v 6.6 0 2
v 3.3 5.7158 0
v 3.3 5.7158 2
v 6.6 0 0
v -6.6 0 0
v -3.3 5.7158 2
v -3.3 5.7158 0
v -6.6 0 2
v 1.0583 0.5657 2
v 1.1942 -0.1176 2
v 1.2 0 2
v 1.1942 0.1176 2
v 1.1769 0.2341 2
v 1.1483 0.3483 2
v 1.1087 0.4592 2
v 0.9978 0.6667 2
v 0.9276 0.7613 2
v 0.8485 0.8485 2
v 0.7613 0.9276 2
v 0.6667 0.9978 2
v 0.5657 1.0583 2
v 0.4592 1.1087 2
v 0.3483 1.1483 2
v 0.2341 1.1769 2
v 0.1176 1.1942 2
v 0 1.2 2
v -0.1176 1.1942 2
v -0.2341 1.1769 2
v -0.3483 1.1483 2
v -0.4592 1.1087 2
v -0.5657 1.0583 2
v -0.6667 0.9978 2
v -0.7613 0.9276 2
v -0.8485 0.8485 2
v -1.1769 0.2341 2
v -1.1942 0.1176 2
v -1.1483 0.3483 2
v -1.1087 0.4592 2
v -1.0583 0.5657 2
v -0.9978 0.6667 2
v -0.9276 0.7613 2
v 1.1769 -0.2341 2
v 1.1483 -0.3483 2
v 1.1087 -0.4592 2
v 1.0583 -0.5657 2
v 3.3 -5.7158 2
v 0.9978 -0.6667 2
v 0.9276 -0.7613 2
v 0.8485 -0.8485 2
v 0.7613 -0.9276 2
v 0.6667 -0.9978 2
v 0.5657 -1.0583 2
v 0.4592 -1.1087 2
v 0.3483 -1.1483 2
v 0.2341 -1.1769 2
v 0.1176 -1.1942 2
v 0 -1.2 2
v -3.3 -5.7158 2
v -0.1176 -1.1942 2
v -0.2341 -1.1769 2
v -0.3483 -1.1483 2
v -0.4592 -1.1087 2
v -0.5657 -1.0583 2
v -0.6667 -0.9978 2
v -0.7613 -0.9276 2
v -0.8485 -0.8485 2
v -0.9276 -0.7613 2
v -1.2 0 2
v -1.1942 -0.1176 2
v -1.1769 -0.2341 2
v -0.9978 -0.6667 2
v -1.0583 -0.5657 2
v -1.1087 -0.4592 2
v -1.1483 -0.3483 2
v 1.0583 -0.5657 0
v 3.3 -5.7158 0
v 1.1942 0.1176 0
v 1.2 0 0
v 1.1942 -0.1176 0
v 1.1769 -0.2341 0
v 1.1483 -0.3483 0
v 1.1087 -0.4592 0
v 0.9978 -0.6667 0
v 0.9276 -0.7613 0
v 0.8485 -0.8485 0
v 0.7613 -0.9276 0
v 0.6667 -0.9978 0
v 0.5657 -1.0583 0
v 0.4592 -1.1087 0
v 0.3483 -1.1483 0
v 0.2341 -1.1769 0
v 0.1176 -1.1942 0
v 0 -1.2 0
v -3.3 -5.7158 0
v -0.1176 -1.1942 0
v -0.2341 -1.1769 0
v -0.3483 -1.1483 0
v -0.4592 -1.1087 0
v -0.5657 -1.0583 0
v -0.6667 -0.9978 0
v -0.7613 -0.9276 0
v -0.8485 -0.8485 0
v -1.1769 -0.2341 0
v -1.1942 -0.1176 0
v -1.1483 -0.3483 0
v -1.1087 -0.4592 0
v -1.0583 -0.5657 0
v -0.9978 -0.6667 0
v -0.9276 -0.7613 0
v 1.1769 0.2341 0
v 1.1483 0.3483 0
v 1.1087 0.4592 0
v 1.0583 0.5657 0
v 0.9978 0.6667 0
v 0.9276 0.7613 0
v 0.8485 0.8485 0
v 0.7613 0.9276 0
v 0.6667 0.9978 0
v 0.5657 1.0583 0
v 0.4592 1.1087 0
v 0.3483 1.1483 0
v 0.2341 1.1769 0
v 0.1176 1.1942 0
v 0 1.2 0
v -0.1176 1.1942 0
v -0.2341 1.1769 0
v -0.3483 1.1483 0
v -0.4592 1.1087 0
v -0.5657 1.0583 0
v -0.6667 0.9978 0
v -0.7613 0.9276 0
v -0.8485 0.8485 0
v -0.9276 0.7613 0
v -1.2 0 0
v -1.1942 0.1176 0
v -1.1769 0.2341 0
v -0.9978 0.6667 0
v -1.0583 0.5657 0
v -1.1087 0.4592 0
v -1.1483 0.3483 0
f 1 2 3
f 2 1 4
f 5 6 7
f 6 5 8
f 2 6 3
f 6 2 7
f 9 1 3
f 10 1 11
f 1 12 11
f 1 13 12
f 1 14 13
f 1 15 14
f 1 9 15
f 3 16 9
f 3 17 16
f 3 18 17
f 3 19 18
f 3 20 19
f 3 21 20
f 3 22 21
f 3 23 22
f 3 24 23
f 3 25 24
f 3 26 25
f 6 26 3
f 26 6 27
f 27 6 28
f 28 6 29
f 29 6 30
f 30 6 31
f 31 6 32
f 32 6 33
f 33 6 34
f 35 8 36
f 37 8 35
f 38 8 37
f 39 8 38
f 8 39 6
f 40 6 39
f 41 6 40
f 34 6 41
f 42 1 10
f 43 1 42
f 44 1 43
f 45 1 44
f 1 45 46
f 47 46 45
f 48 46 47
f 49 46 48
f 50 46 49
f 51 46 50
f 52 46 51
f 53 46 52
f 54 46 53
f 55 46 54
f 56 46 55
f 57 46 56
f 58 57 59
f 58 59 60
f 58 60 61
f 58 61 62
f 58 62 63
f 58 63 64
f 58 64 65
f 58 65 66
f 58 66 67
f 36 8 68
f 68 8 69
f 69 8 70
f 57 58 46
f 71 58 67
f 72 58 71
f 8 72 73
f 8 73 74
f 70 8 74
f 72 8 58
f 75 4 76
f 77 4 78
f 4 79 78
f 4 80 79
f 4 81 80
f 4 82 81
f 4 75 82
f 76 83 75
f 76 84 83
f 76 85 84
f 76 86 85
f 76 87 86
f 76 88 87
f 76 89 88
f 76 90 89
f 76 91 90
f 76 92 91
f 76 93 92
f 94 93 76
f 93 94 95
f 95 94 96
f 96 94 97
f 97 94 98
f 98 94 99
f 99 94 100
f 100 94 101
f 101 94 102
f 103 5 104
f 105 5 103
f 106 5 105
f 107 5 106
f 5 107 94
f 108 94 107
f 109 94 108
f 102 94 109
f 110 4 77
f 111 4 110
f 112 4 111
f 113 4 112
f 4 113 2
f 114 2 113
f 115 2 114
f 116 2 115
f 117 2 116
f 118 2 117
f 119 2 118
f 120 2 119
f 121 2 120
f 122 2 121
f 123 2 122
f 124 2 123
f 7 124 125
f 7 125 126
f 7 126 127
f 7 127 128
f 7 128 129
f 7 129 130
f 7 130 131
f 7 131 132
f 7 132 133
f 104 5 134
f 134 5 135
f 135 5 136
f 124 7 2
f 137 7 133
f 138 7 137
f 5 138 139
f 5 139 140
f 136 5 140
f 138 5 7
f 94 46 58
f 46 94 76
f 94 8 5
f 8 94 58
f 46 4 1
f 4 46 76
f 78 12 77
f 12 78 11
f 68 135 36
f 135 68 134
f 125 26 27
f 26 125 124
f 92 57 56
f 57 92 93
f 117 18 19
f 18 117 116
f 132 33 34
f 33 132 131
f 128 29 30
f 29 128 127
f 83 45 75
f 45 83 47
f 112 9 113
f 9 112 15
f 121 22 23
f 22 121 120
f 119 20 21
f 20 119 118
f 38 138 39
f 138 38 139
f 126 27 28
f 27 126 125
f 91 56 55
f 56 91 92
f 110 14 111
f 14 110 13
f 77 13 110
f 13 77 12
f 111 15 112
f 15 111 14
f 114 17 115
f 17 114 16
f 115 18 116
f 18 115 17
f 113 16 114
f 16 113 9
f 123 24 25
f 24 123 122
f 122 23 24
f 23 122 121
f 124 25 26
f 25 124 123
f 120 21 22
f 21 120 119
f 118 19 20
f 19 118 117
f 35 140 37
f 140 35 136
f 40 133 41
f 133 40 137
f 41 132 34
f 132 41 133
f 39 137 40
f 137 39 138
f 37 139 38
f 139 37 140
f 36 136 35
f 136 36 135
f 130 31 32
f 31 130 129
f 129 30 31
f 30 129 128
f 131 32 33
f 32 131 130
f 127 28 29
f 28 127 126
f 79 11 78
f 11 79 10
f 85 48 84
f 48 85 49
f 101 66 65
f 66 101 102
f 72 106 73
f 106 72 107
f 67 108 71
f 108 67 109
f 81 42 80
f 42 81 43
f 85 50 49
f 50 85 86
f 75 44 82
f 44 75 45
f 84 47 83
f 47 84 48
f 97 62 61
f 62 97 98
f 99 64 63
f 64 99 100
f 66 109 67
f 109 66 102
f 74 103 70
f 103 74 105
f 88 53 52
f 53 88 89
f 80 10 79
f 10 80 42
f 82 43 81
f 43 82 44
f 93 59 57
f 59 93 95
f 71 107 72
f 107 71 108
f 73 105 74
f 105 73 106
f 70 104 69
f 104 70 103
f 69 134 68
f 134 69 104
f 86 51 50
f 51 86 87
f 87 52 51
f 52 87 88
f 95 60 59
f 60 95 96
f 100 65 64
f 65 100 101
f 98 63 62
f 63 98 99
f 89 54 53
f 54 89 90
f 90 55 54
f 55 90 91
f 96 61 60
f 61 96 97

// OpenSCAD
difference() {
cylinder(r=6.6, h=2, $fn=6);
cylinder(r=1.2, h=10, $fn=64);
}
